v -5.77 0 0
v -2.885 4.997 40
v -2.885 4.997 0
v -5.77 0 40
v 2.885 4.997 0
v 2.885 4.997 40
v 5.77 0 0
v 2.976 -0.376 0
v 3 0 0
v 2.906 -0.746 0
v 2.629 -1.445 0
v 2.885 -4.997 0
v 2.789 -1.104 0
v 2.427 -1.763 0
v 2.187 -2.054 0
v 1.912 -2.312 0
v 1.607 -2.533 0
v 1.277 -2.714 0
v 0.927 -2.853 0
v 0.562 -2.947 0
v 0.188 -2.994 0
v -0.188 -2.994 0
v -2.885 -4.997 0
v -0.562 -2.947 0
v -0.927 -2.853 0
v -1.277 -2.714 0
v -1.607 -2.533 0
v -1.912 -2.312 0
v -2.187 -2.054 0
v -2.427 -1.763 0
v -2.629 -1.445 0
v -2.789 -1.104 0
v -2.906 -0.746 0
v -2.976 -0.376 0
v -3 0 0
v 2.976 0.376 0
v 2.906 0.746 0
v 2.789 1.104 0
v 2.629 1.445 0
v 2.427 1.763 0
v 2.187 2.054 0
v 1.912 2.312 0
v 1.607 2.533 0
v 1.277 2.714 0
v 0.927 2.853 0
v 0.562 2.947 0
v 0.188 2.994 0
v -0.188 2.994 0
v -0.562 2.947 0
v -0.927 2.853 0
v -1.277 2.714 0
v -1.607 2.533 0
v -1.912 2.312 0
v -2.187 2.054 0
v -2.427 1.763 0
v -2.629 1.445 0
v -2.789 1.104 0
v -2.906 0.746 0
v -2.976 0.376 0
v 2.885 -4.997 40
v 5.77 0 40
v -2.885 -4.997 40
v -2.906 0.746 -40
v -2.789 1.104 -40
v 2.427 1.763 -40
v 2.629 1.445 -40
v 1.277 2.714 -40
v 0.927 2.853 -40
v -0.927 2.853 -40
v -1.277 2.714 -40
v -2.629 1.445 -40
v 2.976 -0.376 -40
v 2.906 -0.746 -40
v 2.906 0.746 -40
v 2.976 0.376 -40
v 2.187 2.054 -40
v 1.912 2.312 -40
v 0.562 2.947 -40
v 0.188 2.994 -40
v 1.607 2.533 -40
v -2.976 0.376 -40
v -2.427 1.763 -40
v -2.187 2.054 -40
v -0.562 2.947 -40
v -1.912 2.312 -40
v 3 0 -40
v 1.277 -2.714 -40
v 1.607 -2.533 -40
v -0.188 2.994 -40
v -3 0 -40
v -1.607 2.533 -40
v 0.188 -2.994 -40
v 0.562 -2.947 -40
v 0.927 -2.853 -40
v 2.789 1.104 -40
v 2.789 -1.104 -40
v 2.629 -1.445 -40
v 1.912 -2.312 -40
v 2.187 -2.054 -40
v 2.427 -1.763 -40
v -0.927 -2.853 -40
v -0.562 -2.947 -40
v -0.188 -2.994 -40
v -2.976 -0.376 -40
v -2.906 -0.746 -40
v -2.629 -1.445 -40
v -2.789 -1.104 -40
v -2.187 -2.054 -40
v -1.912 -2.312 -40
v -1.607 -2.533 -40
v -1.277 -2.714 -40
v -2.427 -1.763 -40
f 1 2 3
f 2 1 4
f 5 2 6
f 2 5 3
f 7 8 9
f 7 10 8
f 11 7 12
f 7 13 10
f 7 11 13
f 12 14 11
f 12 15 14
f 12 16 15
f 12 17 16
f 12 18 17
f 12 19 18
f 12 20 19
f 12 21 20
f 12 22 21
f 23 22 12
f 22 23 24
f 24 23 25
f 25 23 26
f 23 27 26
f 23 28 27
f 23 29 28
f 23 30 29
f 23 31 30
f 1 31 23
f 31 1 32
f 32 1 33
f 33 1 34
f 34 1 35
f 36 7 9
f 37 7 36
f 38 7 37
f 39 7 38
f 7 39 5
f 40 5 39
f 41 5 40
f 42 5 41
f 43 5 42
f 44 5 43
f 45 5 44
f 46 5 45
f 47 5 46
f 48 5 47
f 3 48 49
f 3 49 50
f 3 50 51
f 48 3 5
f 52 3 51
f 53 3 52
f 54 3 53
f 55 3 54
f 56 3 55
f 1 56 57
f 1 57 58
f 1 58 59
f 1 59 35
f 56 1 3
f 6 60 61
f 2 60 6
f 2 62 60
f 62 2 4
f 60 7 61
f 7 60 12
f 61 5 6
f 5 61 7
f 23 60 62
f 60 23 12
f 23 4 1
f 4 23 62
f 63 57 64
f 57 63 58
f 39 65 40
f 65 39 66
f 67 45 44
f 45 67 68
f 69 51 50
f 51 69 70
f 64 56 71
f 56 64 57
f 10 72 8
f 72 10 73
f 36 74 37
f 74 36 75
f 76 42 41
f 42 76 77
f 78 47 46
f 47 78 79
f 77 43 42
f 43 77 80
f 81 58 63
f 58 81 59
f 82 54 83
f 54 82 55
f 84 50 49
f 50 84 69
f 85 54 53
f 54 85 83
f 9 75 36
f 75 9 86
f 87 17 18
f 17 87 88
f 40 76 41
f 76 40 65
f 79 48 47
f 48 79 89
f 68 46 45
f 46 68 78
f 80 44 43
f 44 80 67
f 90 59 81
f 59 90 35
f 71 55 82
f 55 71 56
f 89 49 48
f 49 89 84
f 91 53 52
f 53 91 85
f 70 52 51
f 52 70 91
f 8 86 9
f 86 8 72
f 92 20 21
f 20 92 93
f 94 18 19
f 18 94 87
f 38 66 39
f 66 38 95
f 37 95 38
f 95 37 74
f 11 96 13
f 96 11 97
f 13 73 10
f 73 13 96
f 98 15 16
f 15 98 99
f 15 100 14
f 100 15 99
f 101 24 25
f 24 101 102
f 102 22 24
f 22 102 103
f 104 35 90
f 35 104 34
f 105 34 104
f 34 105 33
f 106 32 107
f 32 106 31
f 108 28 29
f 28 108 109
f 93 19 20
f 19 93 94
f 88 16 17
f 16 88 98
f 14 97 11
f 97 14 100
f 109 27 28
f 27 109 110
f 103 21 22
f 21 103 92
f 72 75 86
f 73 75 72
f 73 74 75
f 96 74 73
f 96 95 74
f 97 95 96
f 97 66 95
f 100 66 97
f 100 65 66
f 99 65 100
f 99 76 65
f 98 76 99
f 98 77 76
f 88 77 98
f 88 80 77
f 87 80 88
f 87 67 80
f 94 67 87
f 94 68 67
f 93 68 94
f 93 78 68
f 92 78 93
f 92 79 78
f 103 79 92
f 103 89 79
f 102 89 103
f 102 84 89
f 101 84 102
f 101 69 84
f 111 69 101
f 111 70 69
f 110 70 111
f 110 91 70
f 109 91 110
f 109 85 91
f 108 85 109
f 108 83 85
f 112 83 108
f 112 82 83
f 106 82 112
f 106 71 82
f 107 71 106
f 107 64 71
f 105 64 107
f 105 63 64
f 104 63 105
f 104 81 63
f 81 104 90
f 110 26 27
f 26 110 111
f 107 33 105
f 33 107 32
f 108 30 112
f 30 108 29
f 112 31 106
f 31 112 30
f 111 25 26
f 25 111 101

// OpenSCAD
$fn = 50;


difference() {
	union() {
		translate(v = [0, 0, 0]) {
			rotate(a = [0, 0, 0]) {
				translate(v = [0, 0, 0]) {
					rotate(a = [0, 0, 0]) {
						linear_extrude(height = 40) {
							polygon(points = [[5.7700000000, 0.0000000000], [2.8850000000, 4.9969665798], [-2.8850000000, 4.9969665798], [-5.7700000000, 0.0000000000], [-2.8850000000, -4.9969665798], [2.8850000000, -4.9969665798]]);
						}
					}
				}
			}
		}
		translate(v = [0, 0, -40]) {
			rotate(a = [0, 0, 0]) {
				cylinder(h = 40, r = 3.0000000000);
			}
		}
	}
	union();
}
